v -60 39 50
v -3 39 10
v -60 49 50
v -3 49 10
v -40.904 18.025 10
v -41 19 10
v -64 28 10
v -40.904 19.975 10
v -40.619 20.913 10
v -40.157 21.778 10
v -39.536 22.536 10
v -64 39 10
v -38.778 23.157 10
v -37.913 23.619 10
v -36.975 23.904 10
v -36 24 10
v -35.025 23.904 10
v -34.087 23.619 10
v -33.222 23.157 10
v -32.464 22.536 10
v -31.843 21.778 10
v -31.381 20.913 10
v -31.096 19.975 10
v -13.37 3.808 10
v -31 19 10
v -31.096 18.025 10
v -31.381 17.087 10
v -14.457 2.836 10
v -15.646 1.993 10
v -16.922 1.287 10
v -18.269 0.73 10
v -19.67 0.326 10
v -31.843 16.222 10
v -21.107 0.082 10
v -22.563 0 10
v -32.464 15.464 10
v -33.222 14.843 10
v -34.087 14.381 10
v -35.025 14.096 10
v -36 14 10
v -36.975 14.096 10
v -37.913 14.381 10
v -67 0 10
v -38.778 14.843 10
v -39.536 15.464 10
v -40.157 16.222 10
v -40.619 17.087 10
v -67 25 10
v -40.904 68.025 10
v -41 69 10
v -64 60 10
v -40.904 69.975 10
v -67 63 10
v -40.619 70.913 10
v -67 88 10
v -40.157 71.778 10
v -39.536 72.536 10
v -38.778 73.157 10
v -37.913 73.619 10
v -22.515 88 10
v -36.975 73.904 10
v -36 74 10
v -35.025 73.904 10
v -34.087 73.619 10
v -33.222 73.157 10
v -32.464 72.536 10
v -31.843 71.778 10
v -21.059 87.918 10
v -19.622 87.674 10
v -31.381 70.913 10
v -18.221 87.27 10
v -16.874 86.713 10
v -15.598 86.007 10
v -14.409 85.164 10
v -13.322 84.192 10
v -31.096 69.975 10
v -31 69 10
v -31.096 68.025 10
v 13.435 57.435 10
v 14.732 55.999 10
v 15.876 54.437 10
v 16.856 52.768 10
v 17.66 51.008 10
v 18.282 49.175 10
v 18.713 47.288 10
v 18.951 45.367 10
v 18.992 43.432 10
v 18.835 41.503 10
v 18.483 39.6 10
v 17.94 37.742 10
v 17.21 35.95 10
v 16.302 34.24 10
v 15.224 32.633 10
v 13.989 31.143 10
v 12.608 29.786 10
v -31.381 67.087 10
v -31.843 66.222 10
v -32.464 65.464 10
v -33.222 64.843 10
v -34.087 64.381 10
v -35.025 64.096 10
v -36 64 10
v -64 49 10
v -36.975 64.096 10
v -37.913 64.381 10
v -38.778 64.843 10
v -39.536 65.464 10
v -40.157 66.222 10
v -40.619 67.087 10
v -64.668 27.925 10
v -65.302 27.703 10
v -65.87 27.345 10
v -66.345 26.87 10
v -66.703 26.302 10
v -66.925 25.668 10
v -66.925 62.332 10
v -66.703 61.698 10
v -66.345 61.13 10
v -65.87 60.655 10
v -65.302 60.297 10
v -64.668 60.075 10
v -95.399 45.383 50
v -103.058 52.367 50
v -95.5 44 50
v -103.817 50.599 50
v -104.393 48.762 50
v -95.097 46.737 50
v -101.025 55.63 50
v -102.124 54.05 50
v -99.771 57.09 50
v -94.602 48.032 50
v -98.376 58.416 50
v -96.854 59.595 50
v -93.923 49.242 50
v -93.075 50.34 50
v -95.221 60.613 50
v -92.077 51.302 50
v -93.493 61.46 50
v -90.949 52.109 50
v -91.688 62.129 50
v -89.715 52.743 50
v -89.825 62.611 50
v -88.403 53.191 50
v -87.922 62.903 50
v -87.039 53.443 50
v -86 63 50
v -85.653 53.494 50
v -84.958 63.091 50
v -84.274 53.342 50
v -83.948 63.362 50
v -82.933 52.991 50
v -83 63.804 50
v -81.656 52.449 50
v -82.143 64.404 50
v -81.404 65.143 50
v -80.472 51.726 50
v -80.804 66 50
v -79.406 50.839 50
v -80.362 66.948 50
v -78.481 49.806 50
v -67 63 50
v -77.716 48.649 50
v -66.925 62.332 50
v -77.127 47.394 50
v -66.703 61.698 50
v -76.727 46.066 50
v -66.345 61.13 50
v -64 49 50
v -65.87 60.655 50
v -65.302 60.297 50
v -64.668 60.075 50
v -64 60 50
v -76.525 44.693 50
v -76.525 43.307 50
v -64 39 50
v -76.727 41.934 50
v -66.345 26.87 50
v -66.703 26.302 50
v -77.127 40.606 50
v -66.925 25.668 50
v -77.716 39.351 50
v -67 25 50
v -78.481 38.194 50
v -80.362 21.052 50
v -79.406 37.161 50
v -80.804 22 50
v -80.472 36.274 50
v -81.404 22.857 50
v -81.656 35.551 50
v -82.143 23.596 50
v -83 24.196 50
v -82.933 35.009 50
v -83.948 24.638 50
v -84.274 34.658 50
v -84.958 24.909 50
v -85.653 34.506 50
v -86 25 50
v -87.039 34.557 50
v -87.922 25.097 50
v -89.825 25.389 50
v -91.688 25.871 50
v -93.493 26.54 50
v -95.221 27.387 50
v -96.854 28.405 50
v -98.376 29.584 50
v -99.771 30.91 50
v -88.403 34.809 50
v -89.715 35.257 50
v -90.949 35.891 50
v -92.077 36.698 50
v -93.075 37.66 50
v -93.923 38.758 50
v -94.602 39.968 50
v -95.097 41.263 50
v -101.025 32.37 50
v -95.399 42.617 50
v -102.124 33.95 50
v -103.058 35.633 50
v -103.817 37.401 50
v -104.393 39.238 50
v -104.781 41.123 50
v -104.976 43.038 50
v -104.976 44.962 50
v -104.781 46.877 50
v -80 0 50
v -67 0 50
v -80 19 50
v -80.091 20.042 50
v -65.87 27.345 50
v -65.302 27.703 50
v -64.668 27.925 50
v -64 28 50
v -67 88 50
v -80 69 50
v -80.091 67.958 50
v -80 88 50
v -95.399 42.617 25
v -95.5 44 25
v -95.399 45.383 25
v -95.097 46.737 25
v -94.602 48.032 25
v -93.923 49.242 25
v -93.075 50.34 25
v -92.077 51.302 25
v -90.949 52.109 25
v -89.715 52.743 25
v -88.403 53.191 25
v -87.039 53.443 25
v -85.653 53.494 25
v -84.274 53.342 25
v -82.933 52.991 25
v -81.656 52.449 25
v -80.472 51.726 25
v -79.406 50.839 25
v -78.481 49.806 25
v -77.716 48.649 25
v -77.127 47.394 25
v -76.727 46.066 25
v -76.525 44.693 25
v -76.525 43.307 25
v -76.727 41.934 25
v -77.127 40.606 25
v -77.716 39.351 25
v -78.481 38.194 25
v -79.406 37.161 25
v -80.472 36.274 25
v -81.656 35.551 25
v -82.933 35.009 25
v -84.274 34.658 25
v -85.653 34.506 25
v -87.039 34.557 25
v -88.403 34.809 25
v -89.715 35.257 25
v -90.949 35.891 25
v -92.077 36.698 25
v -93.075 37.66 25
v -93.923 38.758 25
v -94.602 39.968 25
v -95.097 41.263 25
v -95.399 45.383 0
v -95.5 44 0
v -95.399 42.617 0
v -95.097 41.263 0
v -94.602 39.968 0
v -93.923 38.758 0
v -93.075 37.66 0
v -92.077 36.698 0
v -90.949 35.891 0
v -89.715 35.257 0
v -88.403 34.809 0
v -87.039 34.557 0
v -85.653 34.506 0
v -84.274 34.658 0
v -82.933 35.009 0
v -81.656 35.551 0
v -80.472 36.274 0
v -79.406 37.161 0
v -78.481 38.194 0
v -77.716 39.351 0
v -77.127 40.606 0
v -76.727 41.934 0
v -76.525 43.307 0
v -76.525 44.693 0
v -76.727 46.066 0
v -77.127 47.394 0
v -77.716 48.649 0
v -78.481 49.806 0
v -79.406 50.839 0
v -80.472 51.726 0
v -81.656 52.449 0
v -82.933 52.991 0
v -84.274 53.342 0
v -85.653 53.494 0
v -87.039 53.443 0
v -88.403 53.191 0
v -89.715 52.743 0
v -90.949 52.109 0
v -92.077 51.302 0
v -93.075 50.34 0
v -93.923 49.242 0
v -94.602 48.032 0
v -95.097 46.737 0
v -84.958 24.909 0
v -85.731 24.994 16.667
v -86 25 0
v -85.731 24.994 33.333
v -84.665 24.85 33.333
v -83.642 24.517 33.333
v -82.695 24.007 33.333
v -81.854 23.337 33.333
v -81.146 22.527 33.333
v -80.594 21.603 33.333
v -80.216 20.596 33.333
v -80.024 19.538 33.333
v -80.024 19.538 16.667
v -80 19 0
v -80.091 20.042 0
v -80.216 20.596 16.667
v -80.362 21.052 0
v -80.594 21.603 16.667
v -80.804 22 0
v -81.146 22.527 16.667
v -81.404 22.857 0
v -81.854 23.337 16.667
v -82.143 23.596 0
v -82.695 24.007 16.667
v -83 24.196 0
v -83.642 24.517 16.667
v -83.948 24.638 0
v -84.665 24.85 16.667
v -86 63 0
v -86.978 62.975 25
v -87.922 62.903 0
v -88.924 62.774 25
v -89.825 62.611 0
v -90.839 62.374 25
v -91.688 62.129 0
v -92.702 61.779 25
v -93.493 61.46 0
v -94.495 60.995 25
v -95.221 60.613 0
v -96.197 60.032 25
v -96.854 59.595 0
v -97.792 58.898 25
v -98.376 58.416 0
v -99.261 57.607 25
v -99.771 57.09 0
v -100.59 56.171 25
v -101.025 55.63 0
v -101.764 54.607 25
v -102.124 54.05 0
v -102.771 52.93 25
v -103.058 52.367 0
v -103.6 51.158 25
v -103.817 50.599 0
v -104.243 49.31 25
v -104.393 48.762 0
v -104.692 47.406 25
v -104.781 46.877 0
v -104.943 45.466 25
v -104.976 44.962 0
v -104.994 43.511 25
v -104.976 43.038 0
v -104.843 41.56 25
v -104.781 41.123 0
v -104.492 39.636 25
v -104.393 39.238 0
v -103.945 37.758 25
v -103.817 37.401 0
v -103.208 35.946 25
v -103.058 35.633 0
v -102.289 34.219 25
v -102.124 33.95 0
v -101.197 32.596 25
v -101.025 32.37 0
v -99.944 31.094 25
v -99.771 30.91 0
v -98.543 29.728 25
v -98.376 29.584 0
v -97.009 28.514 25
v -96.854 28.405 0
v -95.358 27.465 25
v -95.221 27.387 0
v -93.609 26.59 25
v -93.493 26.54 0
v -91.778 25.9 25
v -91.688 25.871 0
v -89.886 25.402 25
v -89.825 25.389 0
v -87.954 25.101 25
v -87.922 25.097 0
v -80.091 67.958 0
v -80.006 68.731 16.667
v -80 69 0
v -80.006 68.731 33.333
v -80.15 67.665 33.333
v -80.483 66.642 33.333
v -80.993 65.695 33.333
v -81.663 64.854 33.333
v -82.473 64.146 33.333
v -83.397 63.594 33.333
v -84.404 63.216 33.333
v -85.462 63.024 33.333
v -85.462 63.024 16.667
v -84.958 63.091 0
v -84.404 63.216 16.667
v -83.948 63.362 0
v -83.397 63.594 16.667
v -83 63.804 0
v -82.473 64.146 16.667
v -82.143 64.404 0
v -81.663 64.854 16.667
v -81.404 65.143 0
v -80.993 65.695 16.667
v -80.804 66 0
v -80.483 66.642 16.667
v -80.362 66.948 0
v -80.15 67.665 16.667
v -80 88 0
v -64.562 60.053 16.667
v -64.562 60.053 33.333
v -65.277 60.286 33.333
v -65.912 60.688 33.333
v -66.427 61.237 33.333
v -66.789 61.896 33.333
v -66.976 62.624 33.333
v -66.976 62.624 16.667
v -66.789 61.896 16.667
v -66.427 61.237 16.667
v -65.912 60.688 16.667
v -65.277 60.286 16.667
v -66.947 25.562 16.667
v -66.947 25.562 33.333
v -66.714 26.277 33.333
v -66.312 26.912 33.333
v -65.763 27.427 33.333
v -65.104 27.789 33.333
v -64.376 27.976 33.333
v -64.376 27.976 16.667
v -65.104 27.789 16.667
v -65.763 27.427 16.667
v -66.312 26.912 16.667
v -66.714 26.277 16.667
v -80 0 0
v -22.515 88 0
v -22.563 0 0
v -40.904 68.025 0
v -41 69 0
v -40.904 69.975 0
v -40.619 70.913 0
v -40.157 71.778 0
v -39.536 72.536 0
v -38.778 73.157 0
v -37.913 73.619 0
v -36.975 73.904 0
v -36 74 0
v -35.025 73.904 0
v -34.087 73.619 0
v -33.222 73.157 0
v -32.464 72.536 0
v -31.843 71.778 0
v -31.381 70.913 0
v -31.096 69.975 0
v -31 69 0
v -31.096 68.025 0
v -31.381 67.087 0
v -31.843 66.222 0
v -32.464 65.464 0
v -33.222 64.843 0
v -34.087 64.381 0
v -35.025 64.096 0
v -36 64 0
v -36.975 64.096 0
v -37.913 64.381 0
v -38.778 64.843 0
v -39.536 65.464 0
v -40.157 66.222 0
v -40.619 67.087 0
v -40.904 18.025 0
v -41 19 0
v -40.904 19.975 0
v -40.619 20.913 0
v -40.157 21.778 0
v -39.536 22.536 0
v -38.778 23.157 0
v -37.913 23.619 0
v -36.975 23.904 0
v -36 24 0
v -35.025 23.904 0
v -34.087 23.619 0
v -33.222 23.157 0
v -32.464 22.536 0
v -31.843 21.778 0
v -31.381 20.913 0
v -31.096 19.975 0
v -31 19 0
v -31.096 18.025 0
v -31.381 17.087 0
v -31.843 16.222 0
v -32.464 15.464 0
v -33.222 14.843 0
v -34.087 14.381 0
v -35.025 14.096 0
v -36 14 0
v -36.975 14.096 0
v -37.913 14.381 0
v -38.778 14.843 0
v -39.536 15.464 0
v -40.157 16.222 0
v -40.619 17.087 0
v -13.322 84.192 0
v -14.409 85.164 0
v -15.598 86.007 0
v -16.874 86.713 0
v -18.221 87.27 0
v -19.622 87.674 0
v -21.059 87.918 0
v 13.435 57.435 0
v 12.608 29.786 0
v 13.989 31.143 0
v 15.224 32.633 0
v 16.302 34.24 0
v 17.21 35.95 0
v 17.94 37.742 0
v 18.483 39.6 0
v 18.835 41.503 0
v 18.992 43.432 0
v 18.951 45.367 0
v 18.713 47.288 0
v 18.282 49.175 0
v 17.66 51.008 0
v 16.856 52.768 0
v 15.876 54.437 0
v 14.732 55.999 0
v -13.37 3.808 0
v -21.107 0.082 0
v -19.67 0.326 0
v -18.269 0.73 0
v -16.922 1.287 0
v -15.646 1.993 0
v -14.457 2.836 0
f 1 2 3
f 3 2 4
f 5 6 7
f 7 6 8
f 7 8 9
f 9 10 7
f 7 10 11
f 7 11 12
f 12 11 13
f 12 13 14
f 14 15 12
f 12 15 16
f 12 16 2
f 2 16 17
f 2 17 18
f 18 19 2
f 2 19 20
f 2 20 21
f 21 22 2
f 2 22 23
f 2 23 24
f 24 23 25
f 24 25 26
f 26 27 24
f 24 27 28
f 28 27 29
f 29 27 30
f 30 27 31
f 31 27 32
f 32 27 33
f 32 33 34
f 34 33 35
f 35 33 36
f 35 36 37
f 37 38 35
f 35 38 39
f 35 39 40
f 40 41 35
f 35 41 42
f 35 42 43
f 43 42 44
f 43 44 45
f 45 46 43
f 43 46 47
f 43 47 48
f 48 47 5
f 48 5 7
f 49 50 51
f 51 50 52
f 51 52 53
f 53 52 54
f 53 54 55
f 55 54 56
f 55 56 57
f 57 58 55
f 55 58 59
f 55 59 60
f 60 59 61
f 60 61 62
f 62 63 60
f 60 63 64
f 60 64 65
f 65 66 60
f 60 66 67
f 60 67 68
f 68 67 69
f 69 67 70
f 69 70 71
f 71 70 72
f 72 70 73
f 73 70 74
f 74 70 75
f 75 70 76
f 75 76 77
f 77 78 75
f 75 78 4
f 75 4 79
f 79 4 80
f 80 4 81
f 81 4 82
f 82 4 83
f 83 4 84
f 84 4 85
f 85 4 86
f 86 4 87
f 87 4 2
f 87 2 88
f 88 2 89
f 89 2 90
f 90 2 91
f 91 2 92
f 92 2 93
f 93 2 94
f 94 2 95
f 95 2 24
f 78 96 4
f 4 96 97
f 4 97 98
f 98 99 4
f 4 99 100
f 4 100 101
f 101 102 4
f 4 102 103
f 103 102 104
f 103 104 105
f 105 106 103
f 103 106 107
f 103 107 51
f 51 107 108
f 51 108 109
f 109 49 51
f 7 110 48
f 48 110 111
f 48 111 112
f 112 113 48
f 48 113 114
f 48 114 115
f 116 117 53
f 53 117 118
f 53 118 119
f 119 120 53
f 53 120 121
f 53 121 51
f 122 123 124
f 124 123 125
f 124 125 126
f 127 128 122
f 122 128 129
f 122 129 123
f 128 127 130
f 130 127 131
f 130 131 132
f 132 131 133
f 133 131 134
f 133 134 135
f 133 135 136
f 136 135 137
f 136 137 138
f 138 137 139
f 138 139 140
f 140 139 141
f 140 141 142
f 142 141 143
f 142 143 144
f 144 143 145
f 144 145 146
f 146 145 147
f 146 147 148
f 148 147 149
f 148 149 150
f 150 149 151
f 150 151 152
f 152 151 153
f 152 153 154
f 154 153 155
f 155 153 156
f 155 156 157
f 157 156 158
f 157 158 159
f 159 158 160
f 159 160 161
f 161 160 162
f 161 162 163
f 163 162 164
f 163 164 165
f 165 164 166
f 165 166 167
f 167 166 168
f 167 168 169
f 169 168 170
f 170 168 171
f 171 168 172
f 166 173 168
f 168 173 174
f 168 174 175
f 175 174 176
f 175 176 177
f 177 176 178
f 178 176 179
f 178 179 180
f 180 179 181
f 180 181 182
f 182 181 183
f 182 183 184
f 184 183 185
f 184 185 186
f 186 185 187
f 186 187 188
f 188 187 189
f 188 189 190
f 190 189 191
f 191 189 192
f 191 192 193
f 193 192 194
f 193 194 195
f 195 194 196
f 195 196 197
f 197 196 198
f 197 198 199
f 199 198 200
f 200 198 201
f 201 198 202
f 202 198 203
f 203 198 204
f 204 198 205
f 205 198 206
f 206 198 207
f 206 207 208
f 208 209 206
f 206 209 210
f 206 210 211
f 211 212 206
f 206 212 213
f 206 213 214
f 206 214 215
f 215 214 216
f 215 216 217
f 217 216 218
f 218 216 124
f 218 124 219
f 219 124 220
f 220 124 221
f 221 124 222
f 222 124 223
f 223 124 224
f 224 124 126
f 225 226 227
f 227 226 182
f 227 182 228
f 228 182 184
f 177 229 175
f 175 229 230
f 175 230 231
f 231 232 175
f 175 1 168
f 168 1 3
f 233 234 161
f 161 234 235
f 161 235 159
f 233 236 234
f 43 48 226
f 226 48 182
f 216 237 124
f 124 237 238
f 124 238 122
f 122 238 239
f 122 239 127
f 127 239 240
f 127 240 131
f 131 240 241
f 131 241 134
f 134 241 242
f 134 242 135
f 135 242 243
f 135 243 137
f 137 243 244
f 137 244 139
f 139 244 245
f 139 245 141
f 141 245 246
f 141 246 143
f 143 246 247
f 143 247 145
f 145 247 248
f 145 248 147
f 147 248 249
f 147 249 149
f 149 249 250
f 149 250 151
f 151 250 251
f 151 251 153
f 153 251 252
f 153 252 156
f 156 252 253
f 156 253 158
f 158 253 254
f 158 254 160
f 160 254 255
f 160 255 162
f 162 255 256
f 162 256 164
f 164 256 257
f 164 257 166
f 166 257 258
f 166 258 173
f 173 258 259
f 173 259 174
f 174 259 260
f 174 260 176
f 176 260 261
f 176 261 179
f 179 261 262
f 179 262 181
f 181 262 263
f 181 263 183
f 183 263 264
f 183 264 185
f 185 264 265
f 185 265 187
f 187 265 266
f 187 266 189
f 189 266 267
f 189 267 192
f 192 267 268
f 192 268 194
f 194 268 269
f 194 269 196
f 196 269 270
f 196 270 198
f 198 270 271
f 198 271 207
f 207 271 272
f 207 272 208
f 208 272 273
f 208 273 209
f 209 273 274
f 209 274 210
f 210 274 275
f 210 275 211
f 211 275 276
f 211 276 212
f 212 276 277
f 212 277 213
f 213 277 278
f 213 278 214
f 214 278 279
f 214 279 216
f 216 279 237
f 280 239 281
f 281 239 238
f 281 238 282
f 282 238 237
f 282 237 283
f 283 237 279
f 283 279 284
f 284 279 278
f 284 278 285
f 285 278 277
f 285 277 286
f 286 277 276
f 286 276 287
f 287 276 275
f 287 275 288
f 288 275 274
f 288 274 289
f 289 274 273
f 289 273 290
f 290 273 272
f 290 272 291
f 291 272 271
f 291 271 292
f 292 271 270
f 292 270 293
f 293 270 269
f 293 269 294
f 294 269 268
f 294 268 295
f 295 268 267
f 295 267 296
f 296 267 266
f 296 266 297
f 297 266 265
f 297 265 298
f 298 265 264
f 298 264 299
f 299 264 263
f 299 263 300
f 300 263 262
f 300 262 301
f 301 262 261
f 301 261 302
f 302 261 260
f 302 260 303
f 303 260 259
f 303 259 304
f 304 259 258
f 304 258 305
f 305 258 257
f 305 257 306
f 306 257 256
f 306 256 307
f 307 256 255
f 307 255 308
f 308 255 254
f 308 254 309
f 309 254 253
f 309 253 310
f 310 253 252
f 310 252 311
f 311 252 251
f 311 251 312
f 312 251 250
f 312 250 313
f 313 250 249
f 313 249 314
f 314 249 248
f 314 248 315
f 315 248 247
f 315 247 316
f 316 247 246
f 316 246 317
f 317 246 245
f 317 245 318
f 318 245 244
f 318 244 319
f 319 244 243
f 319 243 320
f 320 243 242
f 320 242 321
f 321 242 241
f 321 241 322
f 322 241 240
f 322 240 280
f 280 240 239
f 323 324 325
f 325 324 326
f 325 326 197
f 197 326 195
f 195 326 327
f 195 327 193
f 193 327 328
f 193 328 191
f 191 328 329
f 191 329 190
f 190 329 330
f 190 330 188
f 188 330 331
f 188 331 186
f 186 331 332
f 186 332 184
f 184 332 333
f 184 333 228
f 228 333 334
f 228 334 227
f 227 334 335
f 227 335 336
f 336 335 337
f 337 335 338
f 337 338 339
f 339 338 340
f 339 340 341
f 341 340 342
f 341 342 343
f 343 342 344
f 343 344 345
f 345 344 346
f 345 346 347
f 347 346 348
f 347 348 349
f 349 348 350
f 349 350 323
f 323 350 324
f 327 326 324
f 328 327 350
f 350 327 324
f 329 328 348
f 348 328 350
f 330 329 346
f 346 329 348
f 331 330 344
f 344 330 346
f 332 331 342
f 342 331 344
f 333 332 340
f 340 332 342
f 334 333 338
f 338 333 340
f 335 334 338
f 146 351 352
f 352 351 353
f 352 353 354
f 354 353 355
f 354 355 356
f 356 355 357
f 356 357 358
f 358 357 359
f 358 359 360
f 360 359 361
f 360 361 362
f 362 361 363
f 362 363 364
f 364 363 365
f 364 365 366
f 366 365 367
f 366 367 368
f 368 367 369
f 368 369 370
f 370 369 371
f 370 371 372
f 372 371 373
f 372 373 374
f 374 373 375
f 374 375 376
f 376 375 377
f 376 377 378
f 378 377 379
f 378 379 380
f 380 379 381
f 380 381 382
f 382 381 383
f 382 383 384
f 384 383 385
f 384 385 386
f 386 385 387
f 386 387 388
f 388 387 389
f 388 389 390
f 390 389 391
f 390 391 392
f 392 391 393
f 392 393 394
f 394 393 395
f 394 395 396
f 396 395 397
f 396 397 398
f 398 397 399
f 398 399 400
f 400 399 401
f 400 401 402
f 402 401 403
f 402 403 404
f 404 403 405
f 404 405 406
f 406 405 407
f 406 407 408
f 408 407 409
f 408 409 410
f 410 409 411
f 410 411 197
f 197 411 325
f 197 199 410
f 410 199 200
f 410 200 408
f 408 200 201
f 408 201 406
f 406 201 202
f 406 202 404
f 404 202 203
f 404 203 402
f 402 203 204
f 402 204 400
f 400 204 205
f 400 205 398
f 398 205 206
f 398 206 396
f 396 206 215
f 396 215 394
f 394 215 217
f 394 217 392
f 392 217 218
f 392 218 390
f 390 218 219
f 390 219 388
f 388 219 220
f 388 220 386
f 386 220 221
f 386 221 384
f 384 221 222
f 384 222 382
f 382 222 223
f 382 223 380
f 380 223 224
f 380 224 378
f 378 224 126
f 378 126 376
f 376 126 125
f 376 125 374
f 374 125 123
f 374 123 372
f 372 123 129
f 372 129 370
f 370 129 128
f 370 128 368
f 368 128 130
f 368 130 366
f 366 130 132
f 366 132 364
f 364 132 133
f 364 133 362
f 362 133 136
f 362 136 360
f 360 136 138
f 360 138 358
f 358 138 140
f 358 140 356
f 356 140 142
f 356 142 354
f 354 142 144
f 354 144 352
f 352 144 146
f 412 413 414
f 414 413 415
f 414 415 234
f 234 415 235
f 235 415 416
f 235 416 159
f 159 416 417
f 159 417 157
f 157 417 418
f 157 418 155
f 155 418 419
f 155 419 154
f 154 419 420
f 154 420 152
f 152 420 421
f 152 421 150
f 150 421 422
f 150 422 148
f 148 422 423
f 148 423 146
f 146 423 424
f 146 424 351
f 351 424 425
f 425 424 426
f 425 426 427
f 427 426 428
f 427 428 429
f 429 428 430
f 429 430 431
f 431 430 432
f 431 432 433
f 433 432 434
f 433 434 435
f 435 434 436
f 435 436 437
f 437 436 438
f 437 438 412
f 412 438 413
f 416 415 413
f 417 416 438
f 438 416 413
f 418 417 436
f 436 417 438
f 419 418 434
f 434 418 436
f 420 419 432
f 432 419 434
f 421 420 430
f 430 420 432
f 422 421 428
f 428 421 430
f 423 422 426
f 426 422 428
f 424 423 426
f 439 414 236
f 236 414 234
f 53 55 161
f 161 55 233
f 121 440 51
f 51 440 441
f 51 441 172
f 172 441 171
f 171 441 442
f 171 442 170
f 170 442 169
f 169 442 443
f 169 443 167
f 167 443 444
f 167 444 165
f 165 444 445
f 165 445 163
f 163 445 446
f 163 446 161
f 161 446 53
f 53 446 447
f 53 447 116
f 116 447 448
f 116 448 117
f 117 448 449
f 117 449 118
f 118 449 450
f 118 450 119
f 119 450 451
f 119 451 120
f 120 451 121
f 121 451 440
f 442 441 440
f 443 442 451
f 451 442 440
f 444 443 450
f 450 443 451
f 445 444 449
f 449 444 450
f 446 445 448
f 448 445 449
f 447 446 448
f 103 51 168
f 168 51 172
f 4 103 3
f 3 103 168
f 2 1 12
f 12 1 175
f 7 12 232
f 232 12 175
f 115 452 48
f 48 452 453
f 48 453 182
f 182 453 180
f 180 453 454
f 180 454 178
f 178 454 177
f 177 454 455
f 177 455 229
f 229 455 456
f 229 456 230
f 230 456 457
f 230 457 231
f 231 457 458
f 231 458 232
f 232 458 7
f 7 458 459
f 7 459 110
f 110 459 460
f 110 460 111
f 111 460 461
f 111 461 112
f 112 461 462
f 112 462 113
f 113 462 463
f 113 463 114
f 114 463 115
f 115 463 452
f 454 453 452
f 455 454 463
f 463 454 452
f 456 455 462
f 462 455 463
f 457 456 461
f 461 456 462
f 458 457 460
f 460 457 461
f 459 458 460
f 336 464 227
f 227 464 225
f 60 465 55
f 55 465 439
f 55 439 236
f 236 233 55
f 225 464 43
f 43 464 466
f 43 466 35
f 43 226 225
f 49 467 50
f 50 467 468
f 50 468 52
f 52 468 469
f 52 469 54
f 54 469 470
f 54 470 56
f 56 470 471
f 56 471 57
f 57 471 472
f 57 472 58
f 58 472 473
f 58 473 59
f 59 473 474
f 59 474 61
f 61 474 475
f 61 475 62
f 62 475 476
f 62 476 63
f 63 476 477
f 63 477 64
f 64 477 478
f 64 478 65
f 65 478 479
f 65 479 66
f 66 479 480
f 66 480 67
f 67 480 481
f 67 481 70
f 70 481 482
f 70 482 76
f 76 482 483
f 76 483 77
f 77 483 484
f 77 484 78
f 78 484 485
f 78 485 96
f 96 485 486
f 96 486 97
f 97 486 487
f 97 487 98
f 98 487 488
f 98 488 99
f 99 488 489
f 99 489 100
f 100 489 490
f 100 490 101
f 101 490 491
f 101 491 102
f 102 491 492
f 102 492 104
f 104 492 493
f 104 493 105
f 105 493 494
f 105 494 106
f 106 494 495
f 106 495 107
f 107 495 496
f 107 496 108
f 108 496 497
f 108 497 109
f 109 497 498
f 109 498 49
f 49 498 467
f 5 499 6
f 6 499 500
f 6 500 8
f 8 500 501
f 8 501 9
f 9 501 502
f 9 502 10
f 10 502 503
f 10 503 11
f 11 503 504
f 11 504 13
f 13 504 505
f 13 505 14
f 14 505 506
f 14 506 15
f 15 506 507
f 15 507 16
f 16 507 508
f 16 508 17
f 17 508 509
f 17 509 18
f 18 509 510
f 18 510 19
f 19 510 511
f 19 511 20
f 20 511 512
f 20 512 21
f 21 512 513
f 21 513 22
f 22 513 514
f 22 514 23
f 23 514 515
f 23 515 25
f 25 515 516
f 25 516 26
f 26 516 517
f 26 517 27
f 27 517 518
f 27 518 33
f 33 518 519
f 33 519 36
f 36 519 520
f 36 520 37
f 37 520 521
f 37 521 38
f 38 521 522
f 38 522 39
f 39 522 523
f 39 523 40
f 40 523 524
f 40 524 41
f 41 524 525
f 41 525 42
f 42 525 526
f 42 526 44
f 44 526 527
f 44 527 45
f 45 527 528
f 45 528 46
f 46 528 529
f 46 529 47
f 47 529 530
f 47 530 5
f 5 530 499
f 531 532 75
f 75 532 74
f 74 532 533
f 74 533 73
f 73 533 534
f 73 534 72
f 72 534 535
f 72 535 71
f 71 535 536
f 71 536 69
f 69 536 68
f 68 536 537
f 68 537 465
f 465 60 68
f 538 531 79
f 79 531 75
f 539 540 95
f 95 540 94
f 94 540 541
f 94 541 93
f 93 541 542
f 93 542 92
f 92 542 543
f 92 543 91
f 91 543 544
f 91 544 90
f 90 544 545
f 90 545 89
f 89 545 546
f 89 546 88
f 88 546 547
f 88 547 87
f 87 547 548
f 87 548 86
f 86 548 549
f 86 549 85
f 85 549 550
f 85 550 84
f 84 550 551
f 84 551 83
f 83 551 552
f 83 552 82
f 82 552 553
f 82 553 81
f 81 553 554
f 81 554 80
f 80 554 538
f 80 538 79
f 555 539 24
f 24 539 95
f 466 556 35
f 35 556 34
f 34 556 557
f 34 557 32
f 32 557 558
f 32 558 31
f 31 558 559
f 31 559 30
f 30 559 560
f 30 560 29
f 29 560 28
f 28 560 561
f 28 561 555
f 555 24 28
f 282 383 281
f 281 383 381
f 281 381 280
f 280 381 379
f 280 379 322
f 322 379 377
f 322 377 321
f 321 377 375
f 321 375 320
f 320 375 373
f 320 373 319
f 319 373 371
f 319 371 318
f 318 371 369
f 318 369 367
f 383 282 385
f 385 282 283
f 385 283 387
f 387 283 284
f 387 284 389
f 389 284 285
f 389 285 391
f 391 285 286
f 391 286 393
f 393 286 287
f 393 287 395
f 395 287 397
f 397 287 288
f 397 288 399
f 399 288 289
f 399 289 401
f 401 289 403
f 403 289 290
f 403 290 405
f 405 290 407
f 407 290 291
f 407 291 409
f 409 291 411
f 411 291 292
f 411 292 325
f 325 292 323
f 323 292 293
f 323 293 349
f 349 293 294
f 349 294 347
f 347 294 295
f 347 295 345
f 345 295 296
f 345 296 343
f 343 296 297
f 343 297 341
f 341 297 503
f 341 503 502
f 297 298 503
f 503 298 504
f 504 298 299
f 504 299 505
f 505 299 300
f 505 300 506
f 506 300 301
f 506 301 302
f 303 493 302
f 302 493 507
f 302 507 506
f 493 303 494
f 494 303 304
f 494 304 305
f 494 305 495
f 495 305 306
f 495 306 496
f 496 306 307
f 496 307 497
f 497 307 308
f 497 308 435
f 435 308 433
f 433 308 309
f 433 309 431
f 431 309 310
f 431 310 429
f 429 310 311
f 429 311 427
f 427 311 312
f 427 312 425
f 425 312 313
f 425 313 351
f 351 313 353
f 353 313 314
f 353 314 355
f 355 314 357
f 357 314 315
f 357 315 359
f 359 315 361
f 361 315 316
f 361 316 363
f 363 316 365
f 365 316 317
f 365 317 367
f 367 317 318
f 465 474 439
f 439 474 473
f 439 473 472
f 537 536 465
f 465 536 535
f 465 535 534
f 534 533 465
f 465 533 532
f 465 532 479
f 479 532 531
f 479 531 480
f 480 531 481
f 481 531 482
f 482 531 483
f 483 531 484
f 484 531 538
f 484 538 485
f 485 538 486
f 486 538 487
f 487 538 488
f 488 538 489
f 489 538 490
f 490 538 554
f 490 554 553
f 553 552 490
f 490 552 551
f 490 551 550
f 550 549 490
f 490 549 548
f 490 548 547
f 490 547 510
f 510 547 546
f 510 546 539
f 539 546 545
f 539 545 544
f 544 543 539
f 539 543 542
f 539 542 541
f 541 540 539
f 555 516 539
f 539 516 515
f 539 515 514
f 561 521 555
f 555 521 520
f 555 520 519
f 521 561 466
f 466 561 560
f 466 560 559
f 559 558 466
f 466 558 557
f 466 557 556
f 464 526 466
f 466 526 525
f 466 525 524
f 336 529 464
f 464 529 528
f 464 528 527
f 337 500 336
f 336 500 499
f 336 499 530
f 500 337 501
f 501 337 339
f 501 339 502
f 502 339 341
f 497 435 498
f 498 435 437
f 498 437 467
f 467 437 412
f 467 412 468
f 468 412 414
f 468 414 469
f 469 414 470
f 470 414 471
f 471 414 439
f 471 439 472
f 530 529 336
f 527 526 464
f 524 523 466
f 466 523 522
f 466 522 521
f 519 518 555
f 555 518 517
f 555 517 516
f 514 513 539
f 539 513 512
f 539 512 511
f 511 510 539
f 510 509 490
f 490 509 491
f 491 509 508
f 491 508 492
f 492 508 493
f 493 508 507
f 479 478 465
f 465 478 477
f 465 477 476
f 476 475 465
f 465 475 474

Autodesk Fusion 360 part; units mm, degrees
sketch "bottom" plane through (0, 0, 0) normal (0, 0, 1) x (1, 0, 0)
  line L0 (-22.5627, 0) -> (-67, 0)
  line L1 (-67, 88) -> (-22.5147, 88)
  circle A0 centre (-36, 69) radius 5
  circle A1 centre (-36, 19) radius 5
  line L2 (13.411, 30.589) -> (-13.3703, 3.8076)
  line L3 (13.435, 57.435) -> (-13.3223, 84.1924)
  line L4 (-67, 88) -> (-80, 88)
  line L5 (-80, 0) -> (-67, 0)
  arc A2 (-13.3223, 84.1924) -> (-22.5147, 88) centre (-22.5147, 75) ccw
  arc A3 (12.6084, 29.7863) -> (13.435, 57.435) centre (0, 44) ccw
  arc A4 (-22.5627, 0) -> (-13.3703, 3.8076) centre (-22.5627, 13) ccw
  line L6 (-64, 49) -> (-60, 49)
  line L7 (-60, 49) -> (-60, 39)
  line L8 (-60, 39) -> (-64, 39)
  circle A5 centre (-86, 44) radius 9.5
  line L9 (-64, 60) -> (-64, 49)
  line L10 (-64, 39) -> (-64, 28)
  arc A6 (-86, 63) -> (-85.9962, 25) centre (-86, 44) ccw
  line L11 (-67, 0) -> (-67, 25)
  line L12 (-67, 63) -> (-67, 88)
  line L13 (-67, 0) -> (-67, 25)
  line L14 (-67, 63) -> (-67, 88)
  arc A7 (-64, 28) -> (-67, 25) centre (-64, 25) ccw
  arc A8 (-67, 63) -> (-64, 60) centre (-64, 63) ccw
  line L15 (-85.9962, 25) -> (-86.0038, 25) construction
  arc A9 (-80, 19) -> (-86, 25) centre (-86, 19) ccw
  line L16 (-80, 19) -> (-80, 0)
  line L17 (-80, 88) -> (-80, 69)
  arc A10 (-86, 63) -> (-80, 69) centre (-86, 69) ccw
  dimension "d1" = 67
  dimension "d3" = 19
  dimension "d4" = 19
  dimension "d5" = 10
  dimension "d6" = 10
  dimension "d15" = 45
  dimension "d16" = 13
  dimension "d17" = 13
  dimension "d18" = 13
  dimension "d20" = 3
  dimension "d21" = 38
  dimension "d23" = 4
  dimension "d24" = 10
  dimension "d25" = 39
  dimension "d26" = 6
  dimension "d27" = 6
  dimension "d30" = 19
  dimension "d31" = 38
  dimension "d38" = 6
  dimension "d39" = 6
extrude "Extrude1" add sketch "bottom" along normal blind 10
extrude "Extrude2" cut sketch "bottom" along normal blind 40 contours L4 L5 L6 L7 L8 L9 L10 A6 L11 L12 L13 L14 A7 A8 A9 L16 L17 A10
extrude "Extrude3" add sketch "bottom" along normal blind 40 contours L4 L5 L6 L7 L8 L9 L10 A6 L11 L12 L13 L14 A7 A8 A9 L16 L17 A10
extrude "Extrude4" add 1 faces at (-71.3333, 73.3333, 40) along direction (0, 0, 1) blind 10
sketch "triangle" plane through (0, 0, 0) normal (0, -1, 0) x (1, 0, 0)
  line L0 (-80, 0) -> (-22.5627, 0)
  line L1 (-22.5627, 0) -> (-22.5627, 10)
  line L2 (-22.5627, 10) -> (-67, 10)
  line L3 (-67, 10) -> (-67, 50)
  line L4 (-67, 50) -> (-80, 50)
  line L5 (-80, 50) -> (-80, 0)
  line L6 (-60, 10) -> (-3, 10)
  line L7 (-60, 10) -> (-60, 50)
  line L8 (-60, 50) -> (-3, 10)
  dimension "d42" = 57
extrude "Extrude5" add sketch "triangle" along normal blind -49 and the other way blind 39 contours L2 L6 L7 L8
